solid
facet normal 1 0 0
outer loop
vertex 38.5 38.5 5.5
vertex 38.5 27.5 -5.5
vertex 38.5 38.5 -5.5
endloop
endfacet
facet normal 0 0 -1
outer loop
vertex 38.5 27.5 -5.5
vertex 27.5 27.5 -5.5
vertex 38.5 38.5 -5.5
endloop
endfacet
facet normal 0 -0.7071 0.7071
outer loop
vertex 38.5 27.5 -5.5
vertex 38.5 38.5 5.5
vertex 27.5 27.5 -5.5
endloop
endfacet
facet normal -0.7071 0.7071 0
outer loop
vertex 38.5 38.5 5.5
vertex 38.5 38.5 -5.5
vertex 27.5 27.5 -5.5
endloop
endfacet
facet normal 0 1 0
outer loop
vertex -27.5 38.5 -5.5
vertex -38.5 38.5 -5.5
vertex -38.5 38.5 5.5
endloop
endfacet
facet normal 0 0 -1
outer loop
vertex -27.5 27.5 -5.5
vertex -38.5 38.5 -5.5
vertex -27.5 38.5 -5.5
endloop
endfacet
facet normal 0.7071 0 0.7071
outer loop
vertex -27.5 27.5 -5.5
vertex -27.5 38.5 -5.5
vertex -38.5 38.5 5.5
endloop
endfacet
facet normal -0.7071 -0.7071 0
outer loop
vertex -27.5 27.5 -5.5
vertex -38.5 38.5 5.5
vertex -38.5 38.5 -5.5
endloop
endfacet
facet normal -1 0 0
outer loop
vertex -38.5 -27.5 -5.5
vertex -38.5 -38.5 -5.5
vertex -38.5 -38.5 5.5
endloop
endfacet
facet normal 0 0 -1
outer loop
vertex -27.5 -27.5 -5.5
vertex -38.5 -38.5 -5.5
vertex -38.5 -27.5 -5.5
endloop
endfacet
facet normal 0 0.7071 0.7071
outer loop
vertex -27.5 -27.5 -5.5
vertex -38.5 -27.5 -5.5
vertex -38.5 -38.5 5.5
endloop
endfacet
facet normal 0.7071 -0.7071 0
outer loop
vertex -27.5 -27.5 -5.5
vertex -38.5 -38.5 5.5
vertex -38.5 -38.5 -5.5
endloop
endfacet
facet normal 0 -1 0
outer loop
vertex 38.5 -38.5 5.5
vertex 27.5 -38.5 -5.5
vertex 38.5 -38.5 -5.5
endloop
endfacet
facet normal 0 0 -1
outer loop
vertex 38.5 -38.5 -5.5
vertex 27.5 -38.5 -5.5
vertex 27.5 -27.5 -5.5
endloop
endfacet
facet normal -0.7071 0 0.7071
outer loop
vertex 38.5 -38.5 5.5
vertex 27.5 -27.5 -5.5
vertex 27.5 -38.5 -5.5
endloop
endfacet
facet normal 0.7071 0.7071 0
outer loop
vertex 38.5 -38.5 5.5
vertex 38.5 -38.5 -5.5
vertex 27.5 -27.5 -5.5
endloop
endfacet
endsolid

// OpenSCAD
// file: def.scad
block_size_3 = 19;
block_size_4 = 16;
block_size_5 = 14;
block_size_6 = 12.5;
block_size_7 = 11;
block_size_8 = 10;

inf = 1000;

round_radius = 1;
sticker_margin = 2.5;
sticker_round_radius = 0.75;

module _block(size) {
    minkowski() {
        cube([size - round_radius * 2, size - round_radius * 2, size - round_radius * 2], center = true);
        sphere(r = round_radius, $fn = 24);
    }
}

module _selector_0(size) {
    cube([size - 0.2, size - 0.2, size - 0.2], center = true);
}

module _sticker(size) {
    minkowski() {
        cube([size - sticker_margin * 2, size - sticker_margin * 2, 0.1], center = true);
        cylinder(r = sticker_round_radius, h = 0.1, $fn = 24);
    }
}

module _selector_corner_cw(size) {
    difference() {
        cube([size, size, size], center = true);
        rotate([0, -45, 0])
            translate([-inf, -inf, 0])
                cube([inf * 2, inf * 2, inf]);
        rotate([90, 0, 45])
            translate([-inf, -inf, 0])
                cube([inf * 2, inf * 2, inf]);
    }
}

module _selector_corner_ccw(size) {
    difference() {
        cube([size, size, size], center = true);
        rotate([45, 0, 0])
            translate([-inf, -inf, 0])
                cube([inf * 2, inf * 2, inf]);
        rotate([0, -90, -45])
            translate([-inf, -inf, 0])
                cube([inf * 2, inf * 2, inf]);
    }
}

module _selector_edge_cw(size) {
    difference() {
        cube([size, size, size], center = true);
        rotate([90, 0, 45])
            translate([-inf, -inf, 0])
                cube([inf * 2, inf * 2, inf]);
    }
}

module _selector_edge_ccw(size) {
    difference() {
        cube([size, size, size], center = true);
        rotate([0, -90, -45])
            translate([-inf, -inf, 0])
                cube([inf * 2, inf * 2, inf]);
    }
}
// main file
include <def.scad>

for (deg = [0 : 90 : 270])
    rotate([0, 0, deg])
        translate([block_size_7 * 3, block_size_7 * 3, 0])
            _selector_corner_ccw(block_size_7);
